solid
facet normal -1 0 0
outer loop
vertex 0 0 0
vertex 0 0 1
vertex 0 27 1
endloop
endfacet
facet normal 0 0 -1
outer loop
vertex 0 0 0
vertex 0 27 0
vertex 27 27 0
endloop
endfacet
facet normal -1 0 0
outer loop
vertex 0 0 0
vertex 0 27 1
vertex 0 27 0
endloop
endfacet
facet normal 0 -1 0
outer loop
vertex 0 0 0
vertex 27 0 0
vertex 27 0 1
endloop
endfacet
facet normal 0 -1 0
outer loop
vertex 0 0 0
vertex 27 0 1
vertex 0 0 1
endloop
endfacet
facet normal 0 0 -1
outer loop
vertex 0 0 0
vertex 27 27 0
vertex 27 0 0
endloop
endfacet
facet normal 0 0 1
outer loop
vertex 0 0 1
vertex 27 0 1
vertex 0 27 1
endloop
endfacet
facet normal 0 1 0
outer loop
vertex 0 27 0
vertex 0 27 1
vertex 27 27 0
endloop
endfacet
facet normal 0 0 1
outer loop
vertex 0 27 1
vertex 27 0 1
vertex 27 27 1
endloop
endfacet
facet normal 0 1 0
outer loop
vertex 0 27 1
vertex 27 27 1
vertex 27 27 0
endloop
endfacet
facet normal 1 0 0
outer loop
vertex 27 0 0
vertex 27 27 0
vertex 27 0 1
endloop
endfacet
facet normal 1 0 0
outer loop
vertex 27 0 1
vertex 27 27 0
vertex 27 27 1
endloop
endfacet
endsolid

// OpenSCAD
/* Warning, this is a very basic generator with a lot of approximation 
input data : [FCBGA, 8AC, 27x27mm, 256, , A, C04-25106A]
generated by com.zoubworld.electronics.cad.model3d.Basic
Date : Sun Feb 15 10:50:49 CET 2026
*/

//body
color("black")
translate([0,0,0])
cube([27.0,27.0,1.0], center=false);
